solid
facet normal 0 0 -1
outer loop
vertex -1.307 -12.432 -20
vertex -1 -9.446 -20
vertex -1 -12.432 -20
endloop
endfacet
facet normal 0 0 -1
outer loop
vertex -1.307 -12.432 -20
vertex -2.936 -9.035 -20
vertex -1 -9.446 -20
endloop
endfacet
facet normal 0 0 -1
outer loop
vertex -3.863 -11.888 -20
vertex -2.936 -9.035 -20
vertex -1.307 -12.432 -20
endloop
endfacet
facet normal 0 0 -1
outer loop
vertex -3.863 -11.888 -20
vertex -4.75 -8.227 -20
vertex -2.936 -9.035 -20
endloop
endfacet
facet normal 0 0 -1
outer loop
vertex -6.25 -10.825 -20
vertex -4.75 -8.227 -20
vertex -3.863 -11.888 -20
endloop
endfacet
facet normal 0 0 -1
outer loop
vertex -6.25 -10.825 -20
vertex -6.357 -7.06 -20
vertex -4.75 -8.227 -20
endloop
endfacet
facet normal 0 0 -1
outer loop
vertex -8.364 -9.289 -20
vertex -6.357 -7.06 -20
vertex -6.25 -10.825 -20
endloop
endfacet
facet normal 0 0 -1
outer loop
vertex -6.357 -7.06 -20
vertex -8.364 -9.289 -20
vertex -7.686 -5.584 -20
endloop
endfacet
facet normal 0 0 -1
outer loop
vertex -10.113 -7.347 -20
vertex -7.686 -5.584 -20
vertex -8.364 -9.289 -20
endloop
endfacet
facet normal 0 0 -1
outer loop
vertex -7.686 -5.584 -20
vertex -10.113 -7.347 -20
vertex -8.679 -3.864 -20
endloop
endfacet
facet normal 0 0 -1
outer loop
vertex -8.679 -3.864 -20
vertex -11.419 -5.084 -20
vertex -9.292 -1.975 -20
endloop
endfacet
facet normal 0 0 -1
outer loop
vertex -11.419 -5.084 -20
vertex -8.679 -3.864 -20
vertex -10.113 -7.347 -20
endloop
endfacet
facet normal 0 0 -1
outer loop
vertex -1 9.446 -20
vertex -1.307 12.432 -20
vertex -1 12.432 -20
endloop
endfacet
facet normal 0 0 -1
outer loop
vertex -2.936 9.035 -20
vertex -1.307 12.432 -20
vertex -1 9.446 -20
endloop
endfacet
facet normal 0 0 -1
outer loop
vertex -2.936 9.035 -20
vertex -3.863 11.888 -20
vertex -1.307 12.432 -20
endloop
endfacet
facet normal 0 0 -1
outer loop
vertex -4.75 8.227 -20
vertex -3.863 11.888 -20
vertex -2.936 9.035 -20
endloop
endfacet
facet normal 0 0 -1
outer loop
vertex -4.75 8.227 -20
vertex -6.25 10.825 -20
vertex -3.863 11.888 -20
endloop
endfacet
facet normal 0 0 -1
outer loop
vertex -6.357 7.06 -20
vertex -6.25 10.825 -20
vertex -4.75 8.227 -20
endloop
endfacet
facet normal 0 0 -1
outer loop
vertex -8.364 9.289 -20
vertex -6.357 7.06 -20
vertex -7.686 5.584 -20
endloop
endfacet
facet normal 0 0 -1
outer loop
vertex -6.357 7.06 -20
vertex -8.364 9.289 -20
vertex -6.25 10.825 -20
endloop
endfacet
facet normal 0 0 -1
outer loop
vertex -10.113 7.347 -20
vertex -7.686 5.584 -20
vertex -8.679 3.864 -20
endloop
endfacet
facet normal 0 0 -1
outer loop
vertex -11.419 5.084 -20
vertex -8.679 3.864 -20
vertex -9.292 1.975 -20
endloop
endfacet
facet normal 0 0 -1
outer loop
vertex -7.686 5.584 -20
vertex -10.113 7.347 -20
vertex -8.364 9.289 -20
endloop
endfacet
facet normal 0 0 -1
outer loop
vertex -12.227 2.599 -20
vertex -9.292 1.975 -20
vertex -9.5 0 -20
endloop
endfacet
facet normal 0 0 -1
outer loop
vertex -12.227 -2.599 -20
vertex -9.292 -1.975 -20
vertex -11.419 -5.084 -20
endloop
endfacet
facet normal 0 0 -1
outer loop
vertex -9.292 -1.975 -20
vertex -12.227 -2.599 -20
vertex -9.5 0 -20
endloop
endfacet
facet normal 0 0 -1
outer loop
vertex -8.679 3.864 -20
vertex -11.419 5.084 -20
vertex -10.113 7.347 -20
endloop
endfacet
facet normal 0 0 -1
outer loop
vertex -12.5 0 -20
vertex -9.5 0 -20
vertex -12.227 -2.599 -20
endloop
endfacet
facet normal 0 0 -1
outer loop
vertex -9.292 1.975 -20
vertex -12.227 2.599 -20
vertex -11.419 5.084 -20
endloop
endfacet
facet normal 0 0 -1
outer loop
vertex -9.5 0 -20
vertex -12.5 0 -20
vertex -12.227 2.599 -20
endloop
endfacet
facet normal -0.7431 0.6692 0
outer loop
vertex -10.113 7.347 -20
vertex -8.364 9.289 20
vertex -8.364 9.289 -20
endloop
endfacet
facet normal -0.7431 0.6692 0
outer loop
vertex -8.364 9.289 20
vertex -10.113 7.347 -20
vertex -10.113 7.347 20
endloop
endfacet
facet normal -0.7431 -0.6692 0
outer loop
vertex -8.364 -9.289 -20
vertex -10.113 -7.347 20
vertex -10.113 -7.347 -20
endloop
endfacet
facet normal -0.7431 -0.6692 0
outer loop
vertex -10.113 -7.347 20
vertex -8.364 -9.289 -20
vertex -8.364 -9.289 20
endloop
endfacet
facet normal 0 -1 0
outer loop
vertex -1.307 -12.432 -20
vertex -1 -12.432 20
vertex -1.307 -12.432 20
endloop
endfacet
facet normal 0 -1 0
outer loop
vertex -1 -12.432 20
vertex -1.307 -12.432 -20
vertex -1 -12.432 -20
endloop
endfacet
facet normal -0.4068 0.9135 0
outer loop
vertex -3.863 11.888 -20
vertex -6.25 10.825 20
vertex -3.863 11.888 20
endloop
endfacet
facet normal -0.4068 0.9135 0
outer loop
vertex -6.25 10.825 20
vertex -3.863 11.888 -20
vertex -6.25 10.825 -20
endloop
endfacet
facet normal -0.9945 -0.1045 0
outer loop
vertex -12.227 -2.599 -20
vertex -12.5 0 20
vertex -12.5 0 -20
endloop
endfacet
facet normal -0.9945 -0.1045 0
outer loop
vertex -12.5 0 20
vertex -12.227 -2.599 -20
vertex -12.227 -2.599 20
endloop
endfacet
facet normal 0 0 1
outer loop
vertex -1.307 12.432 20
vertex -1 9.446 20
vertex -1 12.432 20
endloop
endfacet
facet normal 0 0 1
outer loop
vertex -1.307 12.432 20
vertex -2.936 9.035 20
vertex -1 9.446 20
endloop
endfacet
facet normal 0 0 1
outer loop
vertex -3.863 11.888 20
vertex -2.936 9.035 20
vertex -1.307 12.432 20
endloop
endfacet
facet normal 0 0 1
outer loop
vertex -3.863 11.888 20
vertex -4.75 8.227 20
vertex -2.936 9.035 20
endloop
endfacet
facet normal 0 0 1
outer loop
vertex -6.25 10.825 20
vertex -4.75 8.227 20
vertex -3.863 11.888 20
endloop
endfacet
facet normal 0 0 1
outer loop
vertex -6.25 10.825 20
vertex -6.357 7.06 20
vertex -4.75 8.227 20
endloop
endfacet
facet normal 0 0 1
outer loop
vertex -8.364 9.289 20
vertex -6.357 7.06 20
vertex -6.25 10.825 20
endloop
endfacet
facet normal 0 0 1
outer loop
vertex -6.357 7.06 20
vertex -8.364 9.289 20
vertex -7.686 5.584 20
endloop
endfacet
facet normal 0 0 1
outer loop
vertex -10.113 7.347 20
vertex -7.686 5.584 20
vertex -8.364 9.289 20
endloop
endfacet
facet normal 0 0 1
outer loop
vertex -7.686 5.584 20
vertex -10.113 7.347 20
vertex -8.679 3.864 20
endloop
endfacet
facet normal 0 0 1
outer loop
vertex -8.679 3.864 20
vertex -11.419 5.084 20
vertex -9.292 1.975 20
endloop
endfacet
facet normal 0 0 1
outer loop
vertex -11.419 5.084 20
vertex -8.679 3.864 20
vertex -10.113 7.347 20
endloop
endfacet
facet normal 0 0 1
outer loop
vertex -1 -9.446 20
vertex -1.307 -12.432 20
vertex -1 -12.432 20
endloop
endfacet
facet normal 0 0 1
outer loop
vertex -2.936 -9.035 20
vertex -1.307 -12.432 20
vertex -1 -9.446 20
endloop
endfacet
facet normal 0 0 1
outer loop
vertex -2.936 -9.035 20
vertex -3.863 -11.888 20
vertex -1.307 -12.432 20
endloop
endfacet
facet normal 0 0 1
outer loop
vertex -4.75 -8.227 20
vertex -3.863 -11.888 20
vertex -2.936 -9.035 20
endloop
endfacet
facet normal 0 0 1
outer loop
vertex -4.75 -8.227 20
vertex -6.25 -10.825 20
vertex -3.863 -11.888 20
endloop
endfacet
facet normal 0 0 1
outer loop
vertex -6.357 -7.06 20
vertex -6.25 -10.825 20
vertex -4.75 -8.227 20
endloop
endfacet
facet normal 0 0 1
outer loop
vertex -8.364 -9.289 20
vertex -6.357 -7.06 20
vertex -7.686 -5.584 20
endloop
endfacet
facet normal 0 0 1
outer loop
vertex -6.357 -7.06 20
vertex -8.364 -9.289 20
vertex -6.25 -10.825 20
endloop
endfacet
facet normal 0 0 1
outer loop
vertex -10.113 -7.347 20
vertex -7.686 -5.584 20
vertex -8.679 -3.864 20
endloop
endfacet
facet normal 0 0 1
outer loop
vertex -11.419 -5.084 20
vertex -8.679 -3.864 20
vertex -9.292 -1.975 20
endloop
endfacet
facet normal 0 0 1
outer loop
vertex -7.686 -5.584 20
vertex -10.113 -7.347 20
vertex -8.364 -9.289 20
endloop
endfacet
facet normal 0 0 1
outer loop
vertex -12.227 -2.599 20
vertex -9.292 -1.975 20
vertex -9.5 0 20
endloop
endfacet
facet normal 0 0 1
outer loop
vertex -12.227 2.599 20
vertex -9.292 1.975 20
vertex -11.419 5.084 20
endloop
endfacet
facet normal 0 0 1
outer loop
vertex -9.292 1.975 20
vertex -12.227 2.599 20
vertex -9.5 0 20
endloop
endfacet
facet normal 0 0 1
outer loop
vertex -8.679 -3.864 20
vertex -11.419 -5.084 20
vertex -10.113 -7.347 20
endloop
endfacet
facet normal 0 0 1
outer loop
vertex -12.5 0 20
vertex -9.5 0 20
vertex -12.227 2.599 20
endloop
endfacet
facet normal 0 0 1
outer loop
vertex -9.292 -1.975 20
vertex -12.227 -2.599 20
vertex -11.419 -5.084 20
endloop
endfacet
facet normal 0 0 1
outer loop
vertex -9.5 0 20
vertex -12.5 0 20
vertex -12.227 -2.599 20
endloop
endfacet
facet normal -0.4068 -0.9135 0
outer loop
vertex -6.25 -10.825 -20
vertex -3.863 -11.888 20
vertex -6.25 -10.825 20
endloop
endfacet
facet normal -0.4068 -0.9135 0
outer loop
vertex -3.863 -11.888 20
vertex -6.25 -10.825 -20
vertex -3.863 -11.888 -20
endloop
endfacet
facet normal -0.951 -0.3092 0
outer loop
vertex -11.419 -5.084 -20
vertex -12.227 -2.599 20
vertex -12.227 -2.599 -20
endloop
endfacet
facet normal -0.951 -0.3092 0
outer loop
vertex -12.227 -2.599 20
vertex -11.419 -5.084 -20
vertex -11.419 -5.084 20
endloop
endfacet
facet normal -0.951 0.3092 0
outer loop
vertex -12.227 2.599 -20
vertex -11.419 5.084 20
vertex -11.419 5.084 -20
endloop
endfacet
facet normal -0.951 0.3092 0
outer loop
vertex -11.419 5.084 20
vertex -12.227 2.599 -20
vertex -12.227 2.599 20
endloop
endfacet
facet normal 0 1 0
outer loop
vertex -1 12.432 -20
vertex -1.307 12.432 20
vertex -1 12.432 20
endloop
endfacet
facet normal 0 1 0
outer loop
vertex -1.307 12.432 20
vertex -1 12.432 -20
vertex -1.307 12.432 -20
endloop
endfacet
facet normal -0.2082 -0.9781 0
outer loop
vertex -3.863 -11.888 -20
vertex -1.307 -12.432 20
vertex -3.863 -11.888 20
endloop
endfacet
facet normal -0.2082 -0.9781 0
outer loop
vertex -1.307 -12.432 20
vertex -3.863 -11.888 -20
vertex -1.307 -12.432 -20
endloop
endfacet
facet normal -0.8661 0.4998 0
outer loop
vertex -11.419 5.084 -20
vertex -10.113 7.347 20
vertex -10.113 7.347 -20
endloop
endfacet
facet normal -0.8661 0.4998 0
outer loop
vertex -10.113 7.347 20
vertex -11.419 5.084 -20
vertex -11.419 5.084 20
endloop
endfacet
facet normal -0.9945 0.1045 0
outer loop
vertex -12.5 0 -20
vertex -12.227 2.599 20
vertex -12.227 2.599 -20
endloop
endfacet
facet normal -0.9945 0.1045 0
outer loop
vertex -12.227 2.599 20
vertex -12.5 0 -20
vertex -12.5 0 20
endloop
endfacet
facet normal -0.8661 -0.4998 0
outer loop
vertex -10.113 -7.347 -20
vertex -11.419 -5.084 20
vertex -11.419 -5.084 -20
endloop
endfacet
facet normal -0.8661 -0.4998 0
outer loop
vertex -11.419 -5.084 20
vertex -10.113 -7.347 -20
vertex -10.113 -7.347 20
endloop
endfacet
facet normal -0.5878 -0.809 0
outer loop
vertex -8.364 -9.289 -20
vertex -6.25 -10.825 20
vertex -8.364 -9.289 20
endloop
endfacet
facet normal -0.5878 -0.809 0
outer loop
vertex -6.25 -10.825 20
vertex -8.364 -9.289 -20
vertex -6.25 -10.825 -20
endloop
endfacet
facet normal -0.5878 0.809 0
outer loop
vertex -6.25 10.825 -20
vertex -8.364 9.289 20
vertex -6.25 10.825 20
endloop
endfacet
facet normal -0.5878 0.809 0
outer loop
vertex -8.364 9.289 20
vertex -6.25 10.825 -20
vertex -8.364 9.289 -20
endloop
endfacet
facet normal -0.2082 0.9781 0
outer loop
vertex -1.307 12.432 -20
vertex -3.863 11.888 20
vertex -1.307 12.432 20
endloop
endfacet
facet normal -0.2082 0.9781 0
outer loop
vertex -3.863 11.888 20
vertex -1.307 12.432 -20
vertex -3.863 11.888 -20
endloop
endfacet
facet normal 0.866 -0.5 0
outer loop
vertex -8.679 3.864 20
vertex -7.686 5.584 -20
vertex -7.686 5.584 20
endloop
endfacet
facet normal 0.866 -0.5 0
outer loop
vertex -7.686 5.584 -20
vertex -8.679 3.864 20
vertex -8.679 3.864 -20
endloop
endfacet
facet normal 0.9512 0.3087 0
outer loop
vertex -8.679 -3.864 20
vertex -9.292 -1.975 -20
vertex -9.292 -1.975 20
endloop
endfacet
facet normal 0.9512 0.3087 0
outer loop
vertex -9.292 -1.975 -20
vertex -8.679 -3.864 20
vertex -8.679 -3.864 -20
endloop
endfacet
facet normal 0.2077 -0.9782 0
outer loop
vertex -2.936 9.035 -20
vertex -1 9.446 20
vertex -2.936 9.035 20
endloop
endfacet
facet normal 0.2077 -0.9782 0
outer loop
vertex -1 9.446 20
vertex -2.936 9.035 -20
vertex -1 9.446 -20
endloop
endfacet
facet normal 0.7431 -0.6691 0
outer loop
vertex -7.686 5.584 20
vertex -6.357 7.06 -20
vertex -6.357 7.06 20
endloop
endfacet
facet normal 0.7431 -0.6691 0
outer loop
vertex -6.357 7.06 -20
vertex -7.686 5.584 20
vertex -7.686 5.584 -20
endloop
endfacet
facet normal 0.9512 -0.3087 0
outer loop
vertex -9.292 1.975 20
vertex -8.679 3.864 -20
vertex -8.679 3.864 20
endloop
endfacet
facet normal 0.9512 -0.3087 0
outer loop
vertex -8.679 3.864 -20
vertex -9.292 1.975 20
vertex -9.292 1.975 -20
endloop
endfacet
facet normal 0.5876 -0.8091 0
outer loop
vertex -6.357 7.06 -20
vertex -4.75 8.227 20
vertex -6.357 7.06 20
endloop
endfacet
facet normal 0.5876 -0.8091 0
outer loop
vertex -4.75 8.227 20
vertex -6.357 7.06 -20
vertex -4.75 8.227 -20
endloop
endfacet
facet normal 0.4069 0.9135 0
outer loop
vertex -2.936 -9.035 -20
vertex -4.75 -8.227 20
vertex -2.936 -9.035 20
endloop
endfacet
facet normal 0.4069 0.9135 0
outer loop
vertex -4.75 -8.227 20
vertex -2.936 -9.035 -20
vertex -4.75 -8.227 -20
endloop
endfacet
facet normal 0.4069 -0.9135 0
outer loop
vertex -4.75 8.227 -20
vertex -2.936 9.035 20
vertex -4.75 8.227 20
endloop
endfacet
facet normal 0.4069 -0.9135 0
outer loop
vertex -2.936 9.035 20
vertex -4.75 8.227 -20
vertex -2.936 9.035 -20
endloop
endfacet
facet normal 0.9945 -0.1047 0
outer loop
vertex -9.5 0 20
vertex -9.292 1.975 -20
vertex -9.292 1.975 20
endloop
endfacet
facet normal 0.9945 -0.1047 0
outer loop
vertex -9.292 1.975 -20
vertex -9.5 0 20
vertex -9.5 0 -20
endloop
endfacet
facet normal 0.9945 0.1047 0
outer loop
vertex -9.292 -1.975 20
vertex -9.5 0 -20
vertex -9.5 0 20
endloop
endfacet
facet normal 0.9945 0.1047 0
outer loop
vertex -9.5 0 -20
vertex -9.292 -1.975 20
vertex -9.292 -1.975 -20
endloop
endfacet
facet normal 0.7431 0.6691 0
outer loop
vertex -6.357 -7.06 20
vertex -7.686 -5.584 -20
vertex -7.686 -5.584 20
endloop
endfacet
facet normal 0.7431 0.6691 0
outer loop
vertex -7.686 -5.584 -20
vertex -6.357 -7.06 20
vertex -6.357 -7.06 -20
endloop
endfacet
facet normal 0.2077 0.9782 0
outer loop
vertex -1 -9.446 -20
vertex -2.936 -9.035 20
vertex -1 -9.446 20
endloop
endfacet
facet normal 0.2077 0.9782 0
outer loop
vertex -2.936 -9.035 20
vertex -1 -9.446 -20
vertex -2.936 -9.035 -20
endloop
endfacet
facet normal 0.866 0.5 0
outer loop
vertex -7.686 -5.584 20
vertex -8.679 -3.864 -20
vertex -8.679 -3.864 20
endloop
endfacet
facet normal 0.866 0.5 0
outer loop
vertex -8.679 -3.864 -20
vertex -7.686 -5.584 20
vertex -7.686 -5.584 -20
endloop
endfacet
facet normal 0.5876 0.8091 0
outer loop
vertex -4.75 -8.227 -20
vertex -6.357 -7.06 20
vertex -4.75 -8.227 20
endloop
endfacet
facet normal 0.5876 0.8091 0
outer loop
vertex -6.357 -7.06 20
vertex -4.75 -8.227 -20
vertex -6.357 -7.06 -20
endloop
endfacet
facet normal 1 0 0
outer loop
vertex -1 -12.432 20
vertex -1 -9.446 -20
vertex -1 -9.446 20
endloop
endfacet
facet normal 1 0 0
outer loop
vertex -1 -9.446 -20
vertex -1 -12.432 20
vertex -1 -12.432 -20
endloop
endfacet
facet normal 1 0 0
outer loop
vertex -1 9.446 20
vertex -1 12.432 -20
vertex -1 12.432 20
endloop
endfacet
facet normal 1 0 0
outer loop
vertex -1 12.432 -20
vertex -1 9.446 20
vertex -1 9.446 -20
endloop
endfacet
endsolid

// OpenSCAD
difference(){    
    cylinder(d=25,h=40,center=true);
    cylinder(d=19,h=90,center=true);
    translate([-1, -50, -50]) {
     cube(100);   
    }
}
